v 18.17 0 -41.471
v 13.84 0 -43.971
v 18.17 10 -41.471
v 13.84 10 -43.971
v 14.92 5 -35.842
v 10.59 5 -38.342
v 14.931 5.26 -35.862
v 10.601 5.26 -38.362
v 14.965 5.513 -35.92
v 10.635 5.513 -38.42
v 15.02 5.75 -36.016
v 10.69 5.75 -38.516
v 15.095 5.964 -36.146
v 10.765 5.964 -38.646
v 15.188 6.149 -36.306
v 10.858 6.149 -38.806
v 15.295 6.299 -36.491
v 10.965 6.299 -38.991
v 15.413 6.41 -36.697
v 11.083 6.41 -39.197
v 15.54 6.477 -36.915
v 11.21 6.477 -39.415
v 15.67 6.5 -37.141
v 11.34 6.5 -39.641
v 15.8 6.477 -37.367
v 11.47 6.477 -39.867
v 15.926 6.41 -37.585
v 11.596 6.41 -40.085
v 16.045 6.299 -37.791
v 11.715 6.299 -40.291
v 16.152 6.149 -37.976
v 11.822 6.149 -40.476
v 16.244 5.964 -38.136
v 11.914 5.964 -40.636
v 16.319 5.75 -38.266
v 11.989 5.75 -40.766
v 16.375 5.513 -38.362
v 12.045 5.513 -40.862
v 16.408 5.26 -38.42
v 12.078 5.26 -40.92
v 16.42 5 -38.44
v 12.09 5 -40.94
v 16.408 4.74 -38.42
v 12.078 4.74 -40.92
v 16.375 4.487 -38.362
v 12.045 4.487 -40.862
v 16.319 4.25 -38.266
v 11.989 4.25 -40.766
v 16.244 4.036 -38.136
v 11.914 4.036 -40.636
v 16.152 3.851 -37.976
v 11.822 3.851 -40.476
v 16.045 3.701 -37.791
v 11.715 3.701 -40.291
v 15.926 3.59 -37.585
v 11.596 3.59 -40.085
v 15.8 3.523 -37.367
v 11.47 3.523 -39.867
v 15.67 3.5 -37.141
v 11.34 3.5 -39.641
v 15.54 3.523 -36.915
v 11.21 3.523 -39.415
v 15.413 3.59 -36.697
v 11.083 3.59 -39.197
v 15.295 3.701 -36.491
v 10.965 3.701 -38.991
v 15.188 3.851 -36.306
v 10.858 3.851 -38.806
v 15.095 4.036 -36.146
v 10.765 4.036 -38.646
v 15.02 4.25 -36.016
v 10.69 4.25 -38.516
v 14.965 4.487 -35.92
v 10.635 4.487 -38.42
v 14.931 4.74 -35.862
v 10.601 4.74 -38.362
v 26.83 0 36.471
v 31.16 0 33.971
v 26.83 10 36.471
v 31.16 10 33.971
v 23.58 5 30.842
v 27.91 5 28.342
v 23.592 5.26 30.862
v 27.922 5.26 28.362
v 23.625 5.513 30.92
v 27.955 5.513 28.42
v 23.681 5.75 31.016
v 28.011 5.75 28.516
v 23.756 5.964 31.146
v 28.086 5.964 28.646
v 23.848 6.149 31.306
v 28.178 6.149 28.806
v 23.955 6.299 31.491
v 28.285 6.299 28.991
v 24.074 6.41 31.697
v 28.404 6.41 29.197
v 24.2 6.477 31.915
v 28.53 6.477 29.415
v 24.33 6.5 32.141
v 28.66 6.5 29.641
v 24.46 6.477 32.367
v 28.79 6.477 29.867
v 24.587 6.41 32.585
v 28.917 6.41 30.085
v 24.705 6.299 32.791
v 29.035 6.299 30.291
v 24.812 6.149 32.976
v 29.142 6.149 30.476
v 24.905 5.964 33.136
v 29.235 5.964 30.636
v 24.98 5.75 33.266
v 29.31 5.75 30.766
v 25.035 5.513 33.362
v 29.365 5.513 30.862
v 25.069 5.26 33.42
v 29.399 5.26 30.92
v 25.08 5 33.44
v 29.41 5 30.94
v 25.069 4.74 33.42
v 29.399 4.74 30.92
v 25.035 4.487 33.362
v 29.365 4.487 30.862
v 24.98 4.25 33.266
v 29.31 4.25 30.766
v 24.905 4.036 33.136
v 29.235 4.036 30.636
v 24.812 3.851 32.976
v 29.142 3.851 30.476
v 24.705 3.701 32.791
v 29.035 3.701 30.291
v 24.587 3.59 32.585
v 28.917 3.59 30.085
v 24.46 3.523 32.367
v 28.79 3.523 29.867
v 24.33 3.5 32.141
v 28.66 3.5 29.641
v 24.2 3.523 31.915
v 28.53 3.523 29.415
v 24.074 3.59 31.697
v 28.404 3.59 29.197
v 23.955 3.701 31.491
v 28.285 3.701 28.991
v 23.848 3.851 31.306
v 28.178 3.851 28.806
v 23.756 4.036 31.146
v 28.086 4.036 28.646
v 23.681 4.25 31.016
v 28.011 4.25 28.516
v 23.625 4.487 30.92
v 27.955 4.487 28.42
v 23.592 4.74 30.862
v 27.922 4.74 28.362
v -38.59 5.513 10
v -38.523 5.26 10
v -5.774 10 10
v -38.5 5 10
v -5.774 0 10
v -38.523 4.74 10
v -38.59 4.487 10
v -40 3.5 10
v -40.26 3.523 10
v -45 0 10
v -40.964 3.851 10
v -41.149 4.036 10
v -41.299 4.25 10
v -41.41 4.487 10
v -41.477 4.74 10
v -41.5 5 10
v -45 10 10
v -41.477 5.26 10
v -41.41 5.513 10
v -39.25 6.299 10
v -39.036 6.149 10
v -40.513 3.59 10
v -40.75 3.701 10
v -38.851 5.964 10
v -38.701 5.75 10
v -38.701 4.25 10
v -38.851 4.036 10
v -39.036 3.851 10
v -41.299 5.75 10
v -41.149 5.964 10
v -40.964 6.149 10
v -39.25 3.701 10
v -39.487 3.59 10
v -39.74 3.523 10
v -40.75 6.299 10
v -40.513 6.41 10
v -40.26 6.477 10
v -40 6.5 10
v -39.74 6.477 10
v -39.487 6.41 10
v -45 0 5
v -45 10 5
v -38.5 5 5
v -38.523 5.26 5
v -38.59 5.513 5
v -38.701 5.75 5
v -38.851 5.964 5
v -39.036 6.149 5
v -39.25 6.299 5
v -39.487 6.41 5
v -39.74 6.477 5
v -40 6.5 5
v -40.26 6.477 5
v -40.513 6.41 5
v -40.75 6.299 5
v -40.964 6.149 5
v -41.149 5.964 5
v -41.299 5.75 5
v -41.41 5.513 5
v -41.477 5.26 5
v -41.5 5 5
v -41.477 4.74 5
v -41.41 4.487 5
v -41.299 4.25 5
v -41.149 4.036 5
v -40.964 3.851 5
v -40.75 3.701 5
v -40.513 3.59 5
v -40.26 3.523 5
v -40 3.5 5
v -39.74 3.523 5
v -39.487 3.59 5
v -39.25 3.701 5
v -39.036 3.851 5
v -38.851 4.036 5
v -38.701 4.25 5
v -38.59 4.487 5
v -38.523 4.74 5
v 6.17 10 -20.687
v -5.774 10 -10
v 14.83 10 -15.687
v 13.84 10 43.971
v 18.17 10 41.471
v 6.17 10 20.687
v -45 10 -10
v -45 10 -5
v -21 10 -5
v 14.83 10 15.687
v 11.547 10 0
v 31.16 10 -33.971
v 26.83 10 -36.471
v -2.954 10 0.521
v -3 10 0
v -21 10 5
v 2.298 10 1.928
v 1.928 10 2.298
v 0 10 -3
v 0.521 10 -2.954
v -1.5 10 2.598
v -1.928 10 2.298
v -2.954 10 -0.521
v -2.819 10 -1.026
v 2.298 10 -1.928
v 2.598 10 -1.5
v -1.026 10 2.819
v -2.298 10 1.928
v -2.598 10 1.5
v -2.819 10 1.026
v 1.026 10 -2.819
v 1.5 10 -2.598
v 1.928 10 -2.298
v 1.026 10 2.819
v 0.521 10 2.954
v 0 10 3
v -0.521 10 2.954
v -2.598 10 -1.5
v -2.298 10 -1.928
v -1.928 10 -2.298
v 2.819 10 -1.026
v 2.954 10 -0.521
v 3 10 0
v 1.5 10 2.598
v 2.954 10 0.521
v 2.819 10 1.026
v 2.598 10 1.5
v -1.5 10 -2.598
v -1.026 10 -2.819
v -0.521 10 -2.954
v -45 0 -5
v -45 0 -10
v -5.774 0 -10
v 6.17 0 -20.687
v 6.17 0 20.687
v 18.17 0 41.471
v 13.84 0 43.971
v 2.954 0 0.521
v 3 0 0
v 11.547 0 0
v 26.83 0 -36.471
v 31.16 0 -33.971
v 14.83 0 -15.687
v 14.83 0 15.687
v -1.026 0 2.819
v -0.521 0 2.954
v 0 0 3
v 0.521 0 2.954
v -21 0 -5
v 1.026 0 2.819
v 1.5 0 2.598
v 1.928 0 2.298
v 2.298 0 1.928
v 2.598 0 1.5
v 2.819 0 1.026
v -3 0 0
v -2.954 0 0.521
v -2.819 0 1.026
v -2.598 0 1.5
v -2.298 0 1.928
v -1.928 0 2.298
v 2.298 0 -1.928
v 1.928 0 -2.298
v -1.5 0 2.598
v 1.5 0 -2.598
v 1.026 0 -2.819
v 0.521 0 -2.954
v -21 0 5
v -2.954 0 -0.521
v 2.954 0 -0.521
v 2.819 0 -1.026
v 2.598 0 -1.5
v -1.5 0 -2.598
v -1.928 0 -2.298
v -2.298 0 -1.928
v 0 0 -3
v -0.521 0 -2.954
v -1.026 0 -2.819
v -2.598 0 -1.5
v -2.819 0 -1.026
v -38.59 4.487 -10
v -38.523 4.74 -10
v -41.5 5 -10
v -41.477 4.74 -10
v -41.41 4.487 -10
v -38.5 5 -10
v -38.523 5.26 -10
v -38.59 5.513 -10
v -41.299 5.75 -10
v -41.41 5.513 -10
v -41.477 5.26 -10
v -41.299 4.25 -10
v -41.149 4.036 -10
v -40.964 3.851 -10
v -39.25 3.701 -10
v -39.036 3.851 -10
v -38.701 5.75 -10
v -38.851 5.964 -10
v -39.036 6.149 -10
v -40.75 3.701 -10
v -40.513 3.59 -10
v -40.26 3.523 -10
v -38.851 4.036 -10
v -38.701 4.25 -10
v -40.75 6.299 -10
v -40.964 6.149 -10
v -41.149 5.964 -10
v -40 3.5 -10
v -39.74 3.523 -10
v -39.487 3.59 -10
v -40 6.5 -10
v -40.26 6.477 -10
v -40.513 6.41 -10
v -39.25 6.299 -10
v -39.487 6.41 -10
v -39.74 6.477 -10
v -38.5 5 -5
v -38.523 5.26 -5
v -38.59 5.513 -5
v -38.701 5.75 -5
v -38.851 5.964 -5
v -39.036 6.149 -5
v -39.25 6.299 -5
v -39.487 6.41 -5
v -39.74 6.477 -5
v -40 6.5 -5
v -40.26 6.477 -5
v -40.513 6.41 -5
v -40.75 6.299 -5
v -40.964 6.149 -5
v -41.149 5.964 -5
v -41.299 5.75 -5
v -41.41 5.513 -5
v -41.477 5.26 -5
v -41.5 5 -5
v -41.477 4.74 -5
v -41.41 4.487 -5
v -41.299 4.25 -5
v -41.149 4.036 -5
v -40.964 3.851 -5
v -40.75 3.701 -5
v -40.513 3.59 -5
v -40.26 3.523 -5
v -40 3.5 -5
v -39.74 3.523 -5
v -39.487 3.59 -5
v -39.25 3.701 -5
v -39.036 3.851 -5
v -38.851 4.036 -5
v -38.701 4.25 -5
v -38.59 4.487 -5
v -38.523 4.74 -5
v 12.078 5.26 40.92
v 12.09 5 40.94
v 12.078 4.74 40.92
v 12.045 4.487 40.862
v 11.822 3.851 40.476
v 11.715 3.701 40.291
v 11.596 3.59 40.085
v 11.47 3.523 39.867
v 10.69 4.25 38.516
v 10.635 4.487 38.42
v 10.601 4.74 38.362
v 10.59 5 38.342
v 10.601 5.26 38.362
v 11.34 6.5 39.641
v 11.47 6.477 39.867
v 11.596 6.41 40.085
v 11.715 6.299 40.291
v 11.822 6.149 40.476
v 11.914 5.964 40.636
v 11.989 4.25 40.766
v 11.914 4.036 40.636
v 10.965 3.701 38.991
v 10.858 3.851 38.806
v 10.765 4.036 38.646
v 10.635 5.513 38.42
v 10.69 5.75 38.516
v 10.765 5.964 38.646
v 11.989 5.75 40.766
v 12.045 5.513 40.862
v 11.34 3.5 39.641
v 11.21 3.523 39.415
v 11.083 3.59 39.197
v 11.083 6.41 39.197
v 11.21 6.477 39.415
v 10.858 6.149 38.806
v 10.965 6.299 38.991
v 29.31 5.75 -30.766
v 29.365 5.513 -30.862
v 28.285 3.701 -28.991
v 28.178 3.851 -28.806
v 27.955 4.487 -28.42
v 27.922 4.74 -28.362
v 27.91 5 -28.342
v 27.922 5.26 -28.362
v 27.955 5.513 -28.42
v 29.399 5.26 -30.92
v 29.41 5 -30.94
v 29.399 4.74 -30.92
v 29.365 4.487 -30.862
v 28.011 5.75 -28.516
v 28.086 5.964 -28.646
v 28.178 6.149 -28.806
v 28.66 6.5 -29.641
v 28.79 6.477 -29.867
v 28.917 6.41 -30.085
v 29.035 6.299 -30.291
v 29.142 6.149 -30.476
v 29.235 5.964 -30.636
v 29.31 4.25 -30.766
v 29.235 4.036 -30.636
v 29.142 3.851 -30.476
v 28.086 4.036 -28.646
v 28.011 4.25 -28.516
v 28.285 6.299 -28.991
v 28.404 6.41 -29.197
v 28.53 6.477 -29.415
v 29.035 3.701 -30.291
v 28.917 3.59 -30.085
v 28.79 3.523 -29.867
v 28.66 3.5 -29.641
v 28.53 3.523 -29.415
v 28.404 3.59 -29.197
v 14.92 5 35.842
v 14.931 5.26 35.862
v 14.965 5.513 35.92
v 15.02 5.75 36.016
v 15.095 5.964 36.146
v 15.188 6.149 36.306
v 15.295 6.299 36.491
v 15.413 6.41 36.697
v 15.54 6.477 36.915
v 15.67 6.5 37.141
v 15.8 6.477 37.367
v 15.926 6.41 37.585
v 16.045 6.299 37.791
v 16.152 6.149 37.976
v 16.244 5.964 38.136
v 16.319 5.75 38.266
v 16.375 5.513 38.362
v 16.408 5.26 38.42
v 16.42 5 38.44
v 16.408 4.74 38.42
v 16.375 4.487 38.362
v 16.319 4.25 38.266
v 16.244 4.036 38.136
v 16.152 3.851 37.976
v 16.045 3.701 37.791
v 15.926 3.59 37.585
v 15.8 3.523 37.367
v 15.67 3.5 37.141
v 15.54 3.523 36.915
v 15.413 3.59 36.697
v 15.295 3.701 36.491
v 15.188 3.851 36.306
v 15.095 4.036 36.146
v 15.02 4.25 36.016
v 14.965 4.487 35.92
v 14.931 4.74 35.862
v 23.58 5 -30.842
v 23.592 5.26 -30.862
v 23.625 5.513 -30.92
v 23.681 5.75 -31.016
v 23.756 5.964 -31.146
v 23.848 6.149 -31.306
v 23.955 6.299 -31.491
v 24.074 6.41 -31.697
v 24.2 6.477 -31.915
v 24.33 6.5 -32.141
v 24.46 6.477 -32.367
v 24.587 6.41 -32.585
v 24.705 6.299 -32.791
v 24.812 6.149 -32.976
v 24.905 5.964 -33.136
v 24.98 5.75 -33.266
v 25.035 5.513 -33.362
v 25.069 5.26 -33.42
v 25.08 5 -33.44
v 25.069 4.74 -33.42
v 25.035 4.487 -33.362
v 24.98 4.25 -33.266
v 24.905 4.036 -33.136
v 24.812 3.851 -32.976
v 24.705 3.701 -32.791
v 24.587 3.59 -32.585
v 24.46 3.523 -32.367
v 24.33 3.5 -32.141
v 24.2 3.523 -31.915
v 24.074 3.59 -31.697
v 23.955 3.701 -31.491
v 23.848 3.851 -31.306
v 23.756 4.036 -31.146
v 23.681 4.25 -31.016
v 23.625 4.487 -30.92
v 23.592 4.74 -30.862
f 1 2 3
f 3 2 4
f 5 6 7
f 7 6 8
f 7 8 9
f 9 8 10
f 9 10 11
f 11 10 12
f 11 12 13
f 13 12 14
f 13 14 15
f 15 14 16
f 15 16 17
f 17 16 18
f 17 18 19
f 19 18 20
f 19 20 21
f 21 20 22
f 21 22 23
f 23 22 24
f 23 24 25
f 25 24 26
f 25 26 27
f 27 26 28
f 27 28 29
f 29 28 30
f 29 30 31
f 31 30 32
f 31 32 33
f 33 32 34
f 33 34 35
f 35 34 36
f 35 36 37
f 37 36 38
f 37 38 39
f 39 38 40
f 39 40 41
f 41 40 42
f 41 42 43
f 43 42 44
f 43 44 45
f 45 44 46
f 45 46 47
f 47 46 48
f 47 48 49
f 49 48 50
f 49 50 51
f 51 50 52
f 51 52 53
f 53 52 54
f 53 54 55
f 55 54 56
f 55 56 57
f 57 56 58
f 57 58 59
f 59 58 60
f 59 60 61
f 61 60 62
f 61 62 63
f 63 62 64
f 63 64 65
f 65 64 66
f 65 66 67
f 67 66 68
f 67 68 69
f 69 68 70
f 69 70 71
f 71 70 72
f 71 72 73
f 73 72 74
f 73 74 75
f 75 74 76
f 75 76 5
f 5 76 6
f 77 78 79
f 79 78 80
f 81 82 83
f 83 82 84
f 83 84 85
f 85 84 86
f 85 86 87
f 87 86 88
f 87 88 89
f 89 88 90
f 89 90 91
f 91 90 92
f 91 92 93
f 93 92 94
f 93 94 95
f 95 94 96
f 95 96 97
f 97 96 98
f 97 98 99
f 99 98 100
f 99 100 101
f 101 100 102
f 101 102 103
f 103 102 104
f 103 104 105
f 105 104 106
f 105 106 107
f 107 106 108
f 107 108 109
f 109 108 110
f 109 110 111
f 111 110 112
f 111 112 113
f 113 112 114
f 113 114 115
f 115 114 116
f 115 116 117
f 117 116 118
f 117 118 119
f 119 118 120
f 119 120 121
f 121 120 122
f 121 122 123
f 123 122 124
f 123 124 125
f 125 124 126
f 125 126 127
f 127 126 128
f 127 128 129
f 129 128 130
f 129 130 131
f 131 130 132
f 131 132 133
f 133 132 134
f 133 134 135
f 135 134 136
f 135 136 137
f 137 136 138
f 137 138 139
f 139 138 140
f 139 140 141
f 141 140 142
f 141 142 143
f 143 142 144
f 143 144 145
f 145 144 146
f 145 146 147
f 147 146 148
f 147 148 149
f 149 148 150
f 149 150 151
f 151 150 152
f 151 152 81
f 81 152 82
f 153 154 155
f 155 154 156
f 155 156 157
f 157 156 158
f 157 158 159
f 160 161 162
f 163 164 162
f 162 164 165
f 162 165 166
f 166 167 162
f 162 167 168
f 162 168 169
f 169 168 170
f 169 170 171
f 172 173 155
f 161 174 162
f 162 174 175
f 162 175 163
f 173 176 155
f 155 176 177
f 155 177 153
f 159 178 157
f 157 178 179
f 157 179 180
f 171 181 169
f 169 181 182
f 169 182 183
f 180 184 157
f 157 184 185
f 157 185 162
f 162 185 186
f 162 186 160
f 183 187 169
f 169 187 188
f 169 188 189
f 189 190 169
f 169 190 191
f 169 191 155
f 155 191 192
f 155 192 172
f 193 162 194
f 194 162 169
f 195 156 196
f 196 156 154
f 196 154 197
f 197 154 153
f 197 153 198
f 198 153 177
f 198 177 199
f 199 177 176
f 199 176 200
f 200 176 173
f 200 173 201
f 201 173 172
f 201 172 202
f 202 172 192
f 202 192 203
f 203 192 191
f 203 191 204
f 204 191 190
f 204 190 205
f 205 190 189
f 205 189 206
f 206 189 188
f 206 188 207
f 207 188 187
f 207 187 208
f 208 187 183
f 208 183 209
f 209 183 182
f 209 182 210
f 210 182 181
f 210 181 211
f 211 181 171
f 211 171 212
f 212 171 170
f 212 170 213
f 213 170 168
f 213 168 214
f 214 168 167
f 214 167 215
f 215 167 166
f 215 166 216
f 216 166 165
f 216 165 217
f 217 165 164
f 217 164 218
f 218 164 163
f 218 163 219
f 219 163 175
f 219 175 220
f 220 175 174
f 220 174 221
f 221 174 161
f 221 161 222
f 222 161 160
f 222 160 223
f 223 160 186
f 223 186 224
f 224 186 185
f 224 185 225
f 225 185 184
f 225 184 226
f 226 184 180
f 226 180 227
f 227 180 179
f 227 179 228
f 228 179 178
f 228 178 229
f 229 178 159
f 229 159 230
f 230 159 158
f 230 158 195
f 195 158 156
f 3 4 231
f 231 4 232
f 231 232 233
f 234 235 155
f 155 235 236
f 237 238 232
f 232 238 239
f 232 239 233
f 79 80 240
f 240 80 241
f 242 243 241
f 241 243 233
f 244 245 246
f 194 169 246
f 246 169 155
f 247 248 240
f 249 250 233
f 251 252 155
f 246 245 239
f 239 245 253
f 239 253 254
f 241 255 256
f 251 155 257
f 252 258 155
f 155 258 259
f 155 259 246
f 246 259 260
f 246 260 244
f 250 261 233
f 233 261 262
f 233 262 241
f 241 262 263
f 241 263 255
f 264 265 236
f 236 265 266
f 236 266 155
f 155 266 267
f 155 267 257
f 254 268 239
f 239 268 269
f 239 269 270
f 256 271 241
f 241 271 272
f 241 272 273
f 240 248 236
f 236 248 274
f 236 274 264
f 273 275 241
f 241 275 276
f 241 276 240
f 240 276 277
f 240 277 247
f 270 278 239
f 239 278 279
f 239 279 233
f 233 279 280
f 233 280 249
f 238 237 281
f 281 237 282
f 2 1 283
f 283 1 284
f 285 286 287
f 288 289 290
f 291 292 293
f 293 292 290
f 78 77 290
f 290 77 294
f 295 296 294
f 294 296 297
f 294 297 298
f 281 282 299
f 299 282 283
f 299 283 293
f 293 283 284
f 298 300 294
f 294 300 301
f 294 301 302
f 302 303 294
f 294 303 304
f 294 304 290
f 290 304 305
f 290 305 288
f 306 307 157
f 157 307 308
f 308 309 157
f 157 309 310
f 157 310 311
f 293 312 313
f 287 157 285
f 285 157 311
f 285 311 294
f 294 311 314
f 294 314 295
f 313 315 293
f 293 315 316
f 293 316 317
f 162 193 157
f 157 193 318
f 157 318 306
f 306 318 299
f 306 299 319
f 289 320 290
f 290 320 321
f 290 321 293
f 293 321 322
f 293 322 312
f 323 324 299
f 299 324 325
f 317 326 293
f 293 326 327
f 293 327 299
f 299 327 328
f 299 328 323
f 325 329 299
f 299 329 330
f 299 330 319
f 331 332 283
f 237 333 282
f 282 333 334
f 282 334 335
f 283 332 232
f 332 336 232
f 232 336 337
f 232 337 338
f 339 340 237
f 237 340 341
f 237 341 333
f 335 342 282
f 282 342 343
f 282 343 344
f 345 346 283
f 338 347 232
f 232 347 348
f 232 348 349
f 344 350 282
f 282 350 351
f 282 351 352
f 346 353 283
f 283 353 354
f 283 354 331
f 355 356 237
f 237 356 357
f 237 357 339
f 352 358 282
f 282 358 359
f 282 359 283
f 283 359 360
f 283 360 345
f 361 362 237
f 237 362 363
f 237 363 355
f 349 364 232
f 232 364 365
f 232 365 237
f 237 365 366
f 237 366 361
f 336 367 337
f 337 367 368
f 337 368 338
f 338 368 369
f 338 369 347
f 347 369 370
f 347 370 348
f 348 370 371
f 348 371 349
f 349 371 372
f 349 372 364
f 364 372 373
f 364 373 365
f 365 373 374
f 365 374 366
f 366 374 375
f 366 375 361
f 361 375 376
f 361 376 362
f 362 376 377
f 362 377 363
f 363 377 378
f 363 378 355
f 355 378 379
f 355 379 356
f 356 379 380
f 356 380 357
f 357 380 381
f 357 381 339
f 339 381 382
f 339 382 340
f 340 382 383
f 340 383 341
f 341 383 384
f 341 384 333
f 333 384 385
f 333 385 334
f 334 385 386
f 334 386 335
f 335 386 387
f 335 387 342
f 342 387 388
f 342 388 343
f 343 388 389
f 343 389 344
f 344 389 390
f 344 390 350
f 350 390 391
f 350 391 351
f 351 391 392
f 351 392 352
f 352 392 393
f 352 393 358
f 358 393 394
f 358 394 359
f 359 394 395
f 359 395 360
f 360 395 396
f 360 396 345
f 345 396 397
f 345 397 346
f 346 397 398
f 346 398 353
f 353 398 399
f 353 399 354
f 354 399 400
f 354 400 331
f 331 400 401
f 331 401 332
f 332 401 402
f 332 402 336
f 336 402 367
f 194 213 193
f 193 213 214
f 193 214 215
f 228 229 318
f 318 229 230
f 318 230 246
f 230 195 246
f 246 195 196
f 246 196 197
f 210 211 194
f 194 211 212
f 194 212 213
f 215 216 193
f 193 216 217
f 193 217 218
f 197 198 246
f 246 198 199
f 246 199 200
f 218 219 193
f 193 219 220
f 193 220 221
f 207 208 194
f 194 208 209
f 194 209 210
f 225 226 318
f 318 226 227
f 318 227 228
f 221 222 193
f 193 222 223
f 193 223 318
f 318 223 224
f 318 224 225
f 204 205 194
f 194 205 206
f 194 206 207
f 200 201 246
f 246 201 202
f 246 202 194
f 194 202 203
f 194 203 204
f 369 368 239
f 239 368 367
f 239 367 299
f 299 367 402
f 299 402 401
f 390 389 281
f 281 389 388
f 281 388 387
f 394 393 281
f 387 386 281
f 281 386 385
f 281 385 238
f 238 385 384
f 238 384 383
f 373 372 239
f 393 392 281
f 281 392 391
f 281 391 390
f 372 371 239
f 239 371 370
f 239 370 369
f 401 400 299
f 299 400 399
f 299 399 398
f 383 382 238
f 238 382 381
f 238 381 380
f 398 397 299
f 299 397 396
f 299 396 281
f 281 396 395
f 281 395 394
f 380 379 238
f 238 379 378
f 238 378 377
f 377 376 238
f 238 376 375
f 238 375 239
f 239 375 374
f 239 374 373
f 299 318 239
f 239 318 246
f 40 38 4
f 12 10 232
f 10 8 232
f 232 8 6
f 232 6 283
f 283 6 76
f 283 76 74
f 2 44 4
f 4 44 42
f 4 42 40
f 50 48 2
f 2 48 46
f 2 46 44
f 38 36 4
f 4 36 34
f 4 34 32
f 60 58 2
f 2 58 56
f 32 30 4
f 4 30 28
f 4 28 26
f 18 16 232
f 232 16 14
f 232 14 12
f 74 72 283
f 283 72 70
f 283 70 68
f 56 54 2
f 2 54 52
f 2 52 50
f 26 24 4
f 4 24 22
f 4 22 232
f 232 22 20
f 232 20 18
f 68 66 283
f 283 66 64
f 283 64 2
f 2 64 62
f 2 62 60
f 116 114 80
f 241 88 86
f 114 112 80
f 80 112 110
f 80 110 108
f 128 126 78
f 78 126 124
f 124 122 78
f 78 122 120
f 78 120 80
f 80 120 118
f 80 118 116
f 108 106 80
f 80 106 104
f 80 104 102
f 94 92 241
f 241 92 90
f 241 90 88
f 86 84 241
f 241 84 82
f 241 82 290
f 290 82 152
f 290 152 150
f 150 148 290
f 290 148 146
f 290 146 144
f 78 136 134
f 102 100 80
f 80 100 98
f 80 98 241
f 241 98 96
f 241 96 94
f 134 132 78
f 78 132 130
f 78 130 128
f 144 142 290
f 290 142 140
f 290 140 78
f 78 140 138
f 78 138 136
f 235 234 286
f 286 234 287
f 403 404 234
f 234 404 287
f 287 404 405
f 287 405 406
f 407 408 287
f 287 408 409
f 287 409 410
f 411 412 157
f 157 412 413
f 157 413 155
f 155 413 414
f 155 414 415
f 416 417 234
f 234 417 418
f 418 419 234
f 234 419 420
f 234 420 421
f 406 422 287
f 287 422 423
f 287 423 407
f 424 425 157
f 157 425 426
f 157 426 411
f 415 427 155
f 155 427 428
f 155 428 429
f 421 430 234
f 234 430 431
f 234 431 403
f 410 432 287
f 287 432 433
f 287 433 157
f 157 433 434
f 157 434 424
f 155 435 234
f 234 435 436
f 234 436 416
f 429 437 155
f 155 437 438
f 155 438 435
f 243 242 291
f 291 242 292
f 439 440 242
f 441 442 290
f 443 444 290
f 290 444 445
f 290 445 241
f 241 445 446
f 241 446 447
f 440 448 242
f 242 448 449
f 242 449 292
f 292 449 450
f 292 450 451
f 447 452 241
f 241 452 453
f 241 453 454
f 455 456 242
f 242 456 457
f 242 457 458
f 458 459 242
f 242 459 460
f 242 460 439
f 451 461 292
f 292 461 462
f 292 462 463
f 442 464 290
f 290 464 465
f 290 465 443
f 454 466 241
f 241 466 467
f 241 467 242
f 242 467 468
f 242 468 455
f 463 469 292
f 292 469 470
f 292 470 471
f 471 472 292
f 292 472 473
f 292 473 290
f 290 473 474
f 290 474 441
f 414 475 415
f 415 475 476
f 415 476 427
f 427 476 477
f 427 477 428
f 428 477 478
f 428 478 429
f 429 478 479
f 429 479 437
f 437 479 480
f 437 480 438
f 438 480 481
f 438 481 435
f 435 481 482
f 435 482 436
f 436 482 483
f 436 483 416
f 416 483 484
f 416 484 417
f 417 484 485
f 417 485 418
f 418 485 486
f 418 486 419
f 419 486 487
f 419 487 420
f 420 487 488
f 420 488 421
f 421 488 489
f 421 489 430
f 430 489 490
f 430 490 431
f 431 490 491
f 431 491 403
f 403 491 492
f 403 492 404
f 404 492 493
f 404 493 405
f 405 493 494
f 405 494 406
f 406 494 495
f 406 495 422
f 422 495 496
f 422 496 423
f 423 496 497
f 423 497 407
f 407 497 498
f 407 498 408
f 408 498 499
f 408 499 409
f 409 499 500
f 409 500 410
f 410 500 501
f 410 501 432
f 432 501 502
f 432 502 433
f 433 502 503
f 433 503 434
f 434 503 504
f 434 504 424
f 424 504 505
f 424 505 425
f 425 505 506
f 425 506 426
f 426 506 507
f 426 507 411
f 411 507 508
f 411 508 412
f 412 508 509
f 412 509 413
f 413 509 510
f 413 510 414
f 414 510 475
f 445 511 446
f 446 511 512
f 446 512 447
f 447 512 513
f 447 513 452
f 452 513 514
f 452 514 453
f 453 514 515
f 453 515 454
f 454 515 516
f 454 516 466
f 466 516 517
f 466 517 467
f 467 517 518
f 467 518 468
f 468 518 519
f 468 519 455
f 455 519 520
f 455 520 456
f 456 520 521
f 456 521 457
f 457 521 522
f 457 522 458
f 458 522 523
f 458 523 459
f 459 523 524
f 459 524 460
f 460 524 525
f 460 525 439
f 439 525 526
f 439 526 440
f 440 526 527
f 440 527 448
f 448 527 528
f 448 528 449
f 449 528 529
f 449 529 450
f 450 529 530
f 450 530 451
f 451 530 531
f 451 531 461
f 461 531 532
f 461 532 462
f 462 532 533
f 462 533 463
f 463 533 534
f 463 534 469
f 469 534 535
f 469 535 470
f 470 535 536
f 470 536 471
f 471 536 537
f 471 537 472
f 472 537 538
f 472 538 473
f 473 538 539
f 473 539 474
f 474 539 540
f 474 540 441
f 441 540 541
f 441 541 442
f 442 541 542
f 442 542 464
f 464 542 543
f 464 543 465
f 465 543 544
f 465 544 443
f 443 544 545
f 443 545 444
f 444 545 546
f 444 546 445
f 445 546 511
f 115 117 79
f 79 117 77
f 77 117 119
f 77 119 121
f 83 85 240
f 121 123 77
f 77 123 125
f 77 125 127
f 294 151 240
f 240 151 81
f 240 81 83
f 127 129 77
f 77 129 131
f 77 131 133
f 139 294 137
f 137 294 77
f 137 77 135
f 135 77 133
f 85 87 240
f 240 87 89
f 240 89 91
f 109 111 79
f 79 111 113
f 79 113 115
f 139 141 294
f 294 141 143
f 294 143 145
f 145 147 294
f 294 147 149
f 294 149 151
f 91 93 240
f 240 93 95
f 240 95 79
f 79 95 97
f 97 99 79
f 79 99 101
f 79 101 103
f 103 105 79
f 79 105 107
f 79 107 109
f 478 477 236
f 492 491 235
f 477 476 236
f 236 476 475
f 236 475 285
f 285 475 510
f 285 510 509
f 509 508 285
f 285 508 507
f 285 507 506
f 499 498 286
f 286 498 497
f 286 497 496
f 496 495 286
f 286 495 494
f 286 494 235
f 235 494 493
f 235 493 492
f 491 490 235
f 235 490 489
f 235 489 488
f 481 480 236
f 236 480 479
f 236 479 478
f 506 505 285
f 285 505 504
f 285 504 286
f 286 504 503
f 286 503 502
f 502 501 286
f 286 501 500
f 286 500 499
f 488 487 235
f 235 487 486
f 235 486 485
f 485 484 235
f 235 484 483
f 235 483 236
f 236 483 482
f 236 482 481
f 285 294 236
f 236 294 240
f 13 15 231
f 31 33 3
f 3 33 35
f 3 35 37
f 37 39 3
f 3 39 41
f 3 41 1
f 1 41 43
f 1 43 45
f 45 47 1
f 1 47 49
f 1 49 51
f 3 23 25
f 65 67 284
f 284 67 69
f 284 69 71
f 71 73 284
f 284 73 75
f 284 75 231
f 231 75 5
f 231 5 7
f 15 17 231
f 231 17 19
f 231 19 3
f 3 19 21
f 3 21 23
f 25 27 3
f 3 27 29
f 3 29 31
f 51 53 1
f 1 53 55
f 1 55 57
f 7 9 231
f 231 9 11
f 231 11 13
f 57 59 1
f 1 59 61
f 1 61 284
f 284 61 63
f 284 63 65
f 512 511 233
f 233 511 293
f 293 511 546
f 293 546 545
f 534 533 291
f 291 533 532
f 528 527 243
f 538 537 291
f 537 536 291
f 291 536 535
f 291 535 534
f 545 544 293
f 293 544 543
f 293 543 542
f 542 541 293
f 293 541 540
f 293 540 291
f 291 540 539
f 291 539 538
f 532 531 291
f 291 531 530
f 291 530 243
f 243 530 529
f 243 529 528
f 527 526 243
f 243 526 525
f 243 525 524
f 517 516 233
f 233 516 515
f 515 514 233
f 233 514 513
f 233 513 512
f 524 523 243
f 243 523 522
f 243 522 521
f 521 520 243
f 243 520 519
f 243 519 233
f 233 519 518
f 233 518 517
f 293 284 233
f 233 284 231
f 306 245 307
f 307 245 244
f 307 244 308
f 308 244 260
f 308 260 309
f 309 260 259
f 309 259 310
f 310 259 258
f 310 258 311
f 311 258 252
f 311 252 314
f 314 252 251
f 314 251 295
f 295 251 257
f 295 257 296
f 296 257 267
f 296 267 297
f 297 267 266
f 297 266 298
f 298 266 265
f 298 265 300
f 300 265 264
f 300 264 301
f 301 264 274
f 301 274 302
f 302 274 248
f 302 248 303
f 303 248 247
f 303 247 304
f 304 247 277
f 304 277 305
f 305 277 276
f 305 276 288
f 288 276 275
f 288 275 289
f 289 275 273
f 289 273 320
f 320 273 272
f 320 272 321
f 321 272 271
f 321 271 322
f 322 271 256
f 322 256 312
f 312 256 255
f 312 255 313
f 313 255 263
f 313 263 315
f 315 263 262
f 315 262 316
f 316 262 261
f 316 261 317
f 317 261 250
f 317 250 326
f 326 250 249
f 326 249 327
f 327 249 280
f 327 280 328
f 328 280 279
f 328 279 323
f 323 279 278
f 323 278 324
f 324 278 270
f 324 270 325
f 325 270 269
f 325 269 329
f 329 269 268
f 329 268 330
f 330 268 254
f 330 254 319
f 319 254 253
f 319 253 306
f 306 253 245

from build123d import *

# Parameters (mm, degrees)
SKETCH1_W          = 45
SKETCH1_H          = 10
MAIN_DEPTH         = 10
CUT_EXTRUDE1_START = -21
SKETCH2_R          = 1.5
CUT_EXTRUDE1_DEPTH = 22
SKETCH4_W          = 24
SKETCH4_H          = 10
CUT_EXTRUDE3_DEPTH = 11
CIRPATTERN1_COUNT  = 3
SKETCH3_R          = 3
CUT_EXTRUDE2_DEPTH = 11


with BuildPart() as part:
    # Sketch1 → Main (new body, symmetric)
    with BuildSketch(Plane.XY):
        with Locations((-22.5, 5)):
            Rectangle(SKETCH1_W, SKETCH1_H)
    main = extrude(amount=MAIN_DEPTH, both=True)

    # Sketch2 → Cut-Extrude1 (cut)
    with BuildSketch(Plane.XY.offset(10).offset(CUT_EXTRUDE1_START)):
        with Locations((-40, 5)):
            Circle(SKETCH2_R)
    cut_extrude1 = extrude(amount=CUT_EXTRUDE1_DEPTH, mode=Mode.SUBTRACT)

    # Sketch4 → Cut-Extrude3 (cut, through all)
    with BuildSketch(Plane(origin=(0, 10, 0), x_dir=(1, 0, 0), z_dir=(0, 1, 0))):
        with Locations((-33, 0)):
            Rectangle(SKETCH4_W, SKETCH4_H)
    cut_extrude3 = extrude(amount=-CUT_EXTRUDE3_DEPTH, mode=Mode.SUBTRACT)

    # CirPattern1: Main, Cut-Extrude1, Cut-Extrude3 ×3 about axis
    cirpattern1_axis = Axis((0, 0, 0), (0, 1, 0))
    for i in range(1, CIRPATTERN1_COUNT):
        add(main.rotate(cirpattern1_axis, i * 360 / CIRPATTERN1_COUNT))
        add(cut_extrude1.rotate(cirpattern1_axis, i * 360 / CIRPATTERN1_COUNT), mode=Mode.SUBTRACT)
        add(cut_extrude3.rotate(cirpattern1_axis, i * 360 / CIRPATTERN1_COUNT), mode=Mode.SUBTRACT)

    # Sketch3 → Cut-Extrude2 (cut, through all)
    with BuildSketch(Plane(origin=(0, 10, 0), x_dir=(1, 0, 0), z_dir=(0, 1, 0))):
        Circle(SKETCH3_R)
    extrude(amount=-CUT_EXTRUDE2_DEPTH, mode=Mode.SUBTRACT)


solid = part.part
